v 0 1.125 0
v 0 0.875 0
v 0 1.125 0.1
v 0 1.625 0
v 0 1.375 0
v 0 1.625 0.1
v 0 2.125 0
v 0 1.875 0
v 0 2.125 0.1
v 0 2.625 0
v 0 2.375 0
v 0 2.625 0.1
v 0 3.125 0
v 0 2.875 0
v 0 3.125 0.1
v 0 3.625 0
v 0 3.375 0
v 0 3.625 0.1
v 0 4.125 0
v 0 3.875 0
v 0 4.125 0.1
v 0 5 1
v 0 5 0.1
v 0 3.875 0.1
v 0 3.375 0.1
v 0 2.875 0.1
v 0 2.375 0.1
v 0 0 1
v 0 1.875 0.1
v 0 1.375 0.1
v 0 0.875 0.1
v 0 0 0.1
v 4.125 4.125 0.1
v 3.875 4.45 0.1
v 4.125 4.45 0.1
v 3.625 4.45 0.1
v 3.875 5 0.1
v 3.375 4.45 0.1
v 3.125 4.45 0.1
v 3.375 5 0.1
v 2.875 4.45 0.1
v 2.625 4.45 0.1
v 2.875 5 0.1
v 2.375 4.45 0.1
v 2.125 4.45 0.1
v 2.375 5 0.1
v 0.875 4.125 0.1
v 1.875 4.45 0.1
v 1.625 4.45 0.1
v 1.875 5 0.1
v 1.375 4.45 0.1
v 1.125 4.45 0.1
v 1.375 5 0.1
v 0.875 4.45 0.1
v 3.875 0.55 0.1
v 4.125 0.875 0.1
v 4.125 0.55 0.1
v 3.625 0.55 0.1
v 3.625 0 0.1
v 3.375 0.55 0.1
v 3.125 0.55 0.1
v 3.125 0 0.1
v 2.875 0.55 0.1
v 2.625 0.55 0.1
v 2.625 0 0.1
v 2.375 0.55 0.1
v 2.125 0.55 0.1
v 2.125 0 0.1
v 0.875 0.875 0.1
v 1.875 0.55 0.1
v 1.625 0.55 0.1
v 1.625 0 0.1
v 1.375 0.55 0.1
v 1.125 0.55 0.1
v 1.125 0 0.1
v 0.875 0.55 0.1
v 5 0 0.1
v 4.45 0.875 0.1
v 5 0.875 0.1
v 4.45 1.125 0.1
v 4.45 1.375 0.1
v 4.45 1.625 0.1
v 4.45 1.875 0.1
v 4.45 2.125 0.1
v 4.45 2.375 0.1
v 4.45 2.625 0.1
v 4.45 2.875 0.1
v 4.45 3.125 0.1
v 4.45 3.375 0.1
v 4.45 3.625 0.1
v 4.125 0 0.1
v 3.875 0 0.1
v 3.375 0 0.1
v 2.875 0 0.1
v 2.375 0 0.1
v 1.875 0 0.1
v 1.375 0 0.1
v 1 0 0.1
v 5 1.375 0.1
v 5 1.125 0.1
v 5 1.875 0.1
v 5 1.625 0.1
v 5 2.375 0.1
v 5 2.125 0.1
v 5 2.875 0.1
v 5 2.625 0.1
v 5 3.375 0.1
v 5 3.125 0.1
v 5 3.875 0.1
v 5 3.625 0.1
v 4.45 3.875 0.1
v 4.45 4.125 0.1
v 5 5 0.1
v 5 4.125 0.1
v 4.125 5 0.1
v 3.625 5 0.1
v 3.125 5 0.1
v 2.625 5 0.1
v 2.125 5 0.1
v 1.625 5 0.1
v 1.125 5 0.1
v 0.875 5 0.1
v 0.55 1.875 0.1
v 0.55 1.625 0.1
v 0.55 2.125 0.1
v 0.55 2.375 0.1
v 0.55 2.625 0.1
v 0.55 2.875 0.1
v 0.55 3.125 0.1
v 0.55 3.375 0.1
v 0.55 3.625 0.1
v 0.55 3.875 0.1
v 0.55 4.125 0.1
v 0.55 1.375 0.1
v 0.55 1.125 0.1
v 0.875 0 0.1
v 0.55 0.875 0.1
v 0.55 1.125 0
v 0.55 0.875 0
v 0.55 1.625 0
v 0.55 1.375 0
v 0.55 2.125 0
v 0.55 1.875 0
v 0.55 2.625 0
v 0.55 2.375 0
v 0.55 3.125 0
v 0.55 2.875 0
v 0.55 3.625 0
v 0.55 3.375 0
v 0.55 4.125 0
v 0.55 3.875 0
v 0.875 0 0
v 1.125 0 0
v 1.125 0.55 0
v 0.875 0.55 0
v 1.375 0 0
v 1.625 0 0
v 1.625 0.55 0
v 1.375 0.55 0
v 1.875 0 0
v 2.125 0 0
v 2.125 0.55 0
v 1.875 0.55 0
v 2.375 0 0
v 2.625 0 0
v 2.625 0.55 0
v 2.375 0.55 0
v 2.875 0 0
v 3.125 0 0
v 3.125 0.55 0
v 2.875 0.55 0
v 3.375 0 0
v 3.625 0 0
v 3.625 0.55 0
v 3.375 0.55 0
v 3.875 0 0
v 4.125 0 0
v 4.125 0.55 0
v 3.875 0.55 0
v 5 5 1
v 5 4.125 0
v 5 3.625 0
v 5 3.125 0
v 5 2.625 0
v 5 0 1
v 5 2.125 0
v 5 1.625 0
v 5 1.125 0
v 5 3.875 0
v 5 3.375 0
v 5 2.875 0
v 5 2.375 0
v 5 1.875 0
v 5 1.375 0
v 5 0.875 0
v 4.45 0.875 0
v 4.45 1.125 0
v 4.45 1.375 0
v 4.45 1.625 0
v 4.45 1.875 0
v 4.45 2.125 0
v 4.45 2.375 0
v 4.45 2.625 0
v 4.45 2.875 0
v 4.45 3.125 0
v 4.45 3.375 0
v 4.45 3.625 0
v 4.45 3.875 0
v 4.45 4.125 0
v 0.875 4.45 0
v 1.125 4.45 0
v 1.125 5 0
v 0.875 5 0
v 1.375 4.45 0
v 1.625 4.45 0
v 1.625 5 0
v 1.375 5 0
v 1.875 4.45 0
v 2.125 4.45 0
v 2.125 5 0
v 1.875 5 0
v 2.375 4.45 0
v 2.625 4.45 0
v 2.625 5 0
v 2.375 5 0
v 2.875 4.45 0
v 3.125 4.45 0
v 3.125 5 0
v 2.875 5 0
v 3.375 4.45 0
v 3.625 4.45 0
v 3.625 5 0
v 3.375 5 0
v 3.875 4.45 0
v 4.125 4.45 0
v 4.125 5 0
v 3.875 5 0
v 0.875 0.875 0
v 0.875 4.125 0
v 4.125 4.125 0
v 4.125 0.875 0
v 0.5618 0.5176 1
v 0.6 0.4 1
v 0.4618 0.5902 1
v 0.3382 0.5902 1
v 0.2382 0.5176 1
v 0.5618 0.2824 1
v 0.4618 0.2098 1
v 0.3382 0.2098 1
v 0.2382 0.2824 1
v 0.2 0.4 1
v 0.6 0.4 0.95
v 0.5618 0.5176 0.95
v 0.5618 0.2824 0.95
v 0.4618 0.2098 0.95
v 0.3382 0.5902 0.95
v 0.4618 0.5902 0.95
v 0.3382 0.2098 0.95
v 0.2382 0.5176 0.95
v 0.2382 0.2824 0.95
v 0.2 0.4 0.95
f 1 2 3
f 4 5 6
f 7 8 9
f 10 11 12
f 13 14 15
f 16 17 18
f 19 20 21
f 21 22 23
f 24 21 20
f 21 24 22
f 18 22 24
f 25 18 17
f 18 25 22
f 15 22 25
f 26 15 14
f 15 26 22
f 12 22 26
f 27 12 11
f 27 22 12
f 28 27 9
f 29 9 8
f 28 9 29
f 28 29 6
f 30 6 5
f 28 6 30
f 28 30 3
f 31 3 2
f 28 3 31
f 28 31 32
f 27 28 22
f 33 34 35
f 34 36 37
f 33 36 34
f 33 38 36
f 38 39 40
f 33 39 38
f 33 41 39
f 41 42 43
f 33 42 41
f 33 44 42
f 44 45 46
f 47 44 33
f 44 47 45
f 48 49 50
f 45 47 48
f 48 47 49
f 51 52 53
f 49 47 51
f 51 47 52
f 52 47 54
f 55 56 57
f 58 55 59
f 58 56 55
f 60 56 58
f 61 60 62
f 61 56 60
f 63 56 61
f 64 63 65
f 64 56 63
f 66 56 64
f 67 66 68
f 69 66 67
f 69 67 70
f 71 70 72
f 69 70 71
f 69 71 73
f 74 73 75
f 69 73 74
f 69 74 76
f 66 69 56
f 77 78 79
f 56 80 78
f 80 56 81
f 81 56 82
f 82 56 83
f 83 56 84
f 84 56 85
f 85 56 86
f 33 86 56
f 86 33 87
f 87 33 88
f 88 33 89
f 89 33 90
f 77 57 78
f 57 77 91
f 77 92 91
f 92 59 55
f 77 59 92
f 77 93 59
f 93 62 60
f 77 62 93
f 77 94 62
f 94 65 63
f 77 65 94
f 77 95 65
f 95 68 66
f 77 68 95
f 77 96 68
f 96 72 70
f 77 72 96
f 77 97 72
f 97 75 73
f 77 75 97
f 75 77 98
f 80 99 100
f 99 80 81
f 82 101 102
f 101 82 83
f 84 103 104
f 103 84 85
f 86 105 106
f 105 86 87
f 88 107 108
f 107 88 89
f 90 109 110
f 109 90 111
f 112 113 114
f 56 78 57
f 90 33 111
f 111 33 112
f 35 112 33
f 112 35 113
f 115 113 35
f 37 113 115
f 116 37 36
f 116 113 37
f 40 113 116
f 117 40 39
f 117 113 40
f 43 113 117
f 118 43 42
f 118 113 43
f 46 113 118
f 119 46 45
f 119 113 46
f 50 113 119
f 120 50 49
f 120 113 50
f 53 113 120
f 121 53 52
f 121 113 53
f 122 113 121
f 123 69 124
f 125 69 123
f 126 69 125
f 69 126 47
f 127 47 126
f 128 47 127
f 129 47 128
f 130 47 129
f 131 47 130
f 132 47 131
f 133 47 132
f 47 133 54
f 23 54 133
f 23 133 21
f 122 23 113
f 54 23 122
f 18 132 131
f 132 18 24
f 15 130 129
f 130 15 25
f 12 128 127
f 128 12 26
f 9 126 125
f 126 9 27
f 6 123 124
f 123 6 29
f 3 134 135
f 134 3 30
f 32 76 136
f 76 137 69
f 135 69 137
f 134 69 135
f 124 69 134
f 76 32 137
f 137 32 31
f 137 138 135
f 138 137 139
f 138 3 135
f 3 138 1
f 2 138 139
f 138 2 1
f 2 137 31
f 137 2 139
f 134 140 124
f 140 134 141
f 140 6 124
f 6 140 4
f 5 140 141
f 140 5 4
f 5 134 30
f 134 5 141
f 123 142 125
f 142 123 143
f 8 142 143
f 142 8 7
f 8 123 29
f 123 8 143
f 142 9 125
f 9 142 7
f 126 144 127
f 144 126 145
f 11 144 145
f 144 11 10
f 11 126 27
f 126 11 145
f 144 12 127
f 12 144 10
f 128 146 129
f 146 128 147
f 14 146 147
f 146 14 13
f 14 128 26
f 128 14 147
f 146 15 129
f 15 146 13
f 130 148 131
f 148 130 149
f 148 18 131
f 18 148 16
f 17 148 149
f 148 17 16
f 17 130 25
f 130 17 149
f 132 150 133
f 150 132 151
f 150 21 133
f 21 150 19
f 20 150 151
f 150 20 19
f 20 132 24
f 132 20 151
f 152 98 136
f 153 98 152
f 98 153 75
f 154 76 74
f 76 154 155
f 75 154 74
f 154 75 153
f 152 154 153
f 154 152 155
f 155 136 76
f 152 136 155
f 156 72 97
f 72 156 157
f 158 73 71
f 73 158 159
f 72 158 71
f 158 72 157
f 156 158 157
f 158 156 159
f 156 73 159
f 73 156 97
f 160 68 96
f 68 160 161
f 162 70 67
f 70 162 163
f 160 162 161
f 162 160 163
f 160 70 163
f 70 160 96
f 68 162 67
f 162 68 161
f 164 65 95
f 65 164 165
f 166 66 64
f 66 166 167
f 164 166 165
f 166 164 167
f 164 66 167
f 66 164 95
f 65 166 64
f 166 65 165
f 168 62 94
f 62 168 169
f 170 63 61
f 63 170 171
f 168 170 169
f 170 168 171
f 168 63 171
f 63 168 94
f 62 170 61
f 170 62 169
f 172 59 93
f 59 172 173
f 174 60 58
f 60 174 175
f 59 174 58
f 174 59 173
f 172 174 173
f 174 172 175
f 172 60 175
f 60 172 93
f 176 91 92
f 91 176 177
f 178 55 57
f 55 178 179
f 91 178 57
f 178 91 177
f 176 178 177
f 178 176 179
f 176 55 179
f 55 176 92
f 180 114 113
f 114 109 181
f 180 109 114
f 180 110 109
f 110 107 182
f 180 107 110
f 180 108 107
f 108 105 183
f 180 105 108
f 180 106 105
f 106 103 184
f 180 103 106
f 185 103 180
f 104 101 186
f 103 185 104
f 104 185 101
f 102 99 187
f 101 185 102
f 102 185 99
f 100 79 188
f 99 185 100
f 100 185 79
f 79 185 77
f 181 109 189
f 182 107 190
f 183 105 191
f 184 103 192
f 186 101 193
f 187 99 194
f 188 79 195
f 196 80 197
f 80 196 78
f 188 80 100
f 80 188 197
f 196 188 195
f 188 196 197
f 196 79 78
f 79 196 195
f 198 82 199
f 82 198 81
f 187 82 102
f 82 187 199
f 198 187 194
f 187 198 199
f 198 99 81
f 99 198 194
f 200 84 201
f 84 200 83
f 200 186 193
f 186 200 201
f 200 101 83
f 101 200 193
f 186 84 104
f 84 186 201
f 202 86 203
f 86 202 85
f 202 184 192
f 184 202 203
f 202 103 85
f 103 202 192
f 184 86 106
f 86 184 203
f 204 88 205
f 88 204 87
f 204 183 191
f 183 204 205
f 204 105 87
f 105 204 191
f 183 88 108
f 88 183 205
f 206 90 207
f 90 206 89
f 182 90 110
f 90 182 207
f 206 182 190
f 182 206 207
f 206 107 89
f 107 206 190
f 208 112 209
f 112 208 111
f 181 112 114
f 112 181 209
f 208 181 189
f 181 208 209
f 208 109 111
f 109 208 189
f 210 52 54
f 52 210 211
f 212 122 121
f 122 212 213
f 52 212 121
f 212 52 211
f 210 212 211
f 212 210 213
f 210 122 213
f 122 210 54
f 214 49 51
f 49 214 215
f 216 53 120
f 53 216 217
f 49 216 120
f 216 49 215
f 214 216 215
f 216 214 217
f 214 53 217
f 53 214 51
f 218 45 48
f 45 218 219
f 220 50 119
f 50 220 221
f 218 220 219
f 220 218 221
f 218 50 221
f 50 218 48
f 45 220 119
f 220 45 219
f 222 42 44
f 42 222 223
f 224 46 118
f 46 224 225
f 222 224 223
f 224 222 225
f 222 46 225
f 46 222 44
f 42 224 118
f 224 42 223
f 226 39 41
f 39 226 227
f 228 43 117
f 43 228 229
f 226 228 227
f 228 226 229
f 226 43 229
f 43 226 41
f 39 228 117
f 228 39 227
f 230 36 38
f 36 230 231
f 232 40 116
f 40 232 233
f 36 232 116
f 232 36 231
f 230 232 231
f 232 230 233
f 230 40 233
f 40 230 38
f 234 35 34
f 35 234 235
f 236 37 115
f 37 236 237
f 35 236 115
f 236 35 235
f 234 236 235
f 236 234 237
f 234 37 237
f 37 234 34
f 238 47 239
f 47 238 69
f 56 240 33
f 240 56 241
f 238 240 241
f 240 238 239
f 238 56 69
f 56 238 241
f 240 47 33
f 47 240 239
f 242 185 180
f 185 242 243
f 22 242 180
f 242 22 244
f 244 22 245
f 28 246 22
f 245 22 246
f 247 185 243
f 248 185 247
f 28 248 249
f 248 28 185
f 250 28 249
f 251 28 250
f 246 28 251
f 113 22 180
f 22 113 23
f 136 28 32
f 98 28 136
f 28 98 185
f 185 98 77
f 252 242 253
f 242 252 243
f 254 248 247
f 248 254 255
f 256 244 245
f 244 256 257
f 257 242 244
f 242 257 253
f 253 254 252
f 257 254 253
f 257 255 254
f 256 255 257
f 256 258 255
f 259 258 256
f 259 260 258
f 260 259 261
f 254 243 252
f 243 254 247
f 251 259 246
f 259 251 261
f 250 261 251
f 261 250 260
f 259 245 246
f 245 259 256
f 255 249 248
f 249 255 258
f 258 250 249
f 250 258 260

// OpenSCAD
pin_w  = 0.25;
pin_th = 0.1;
pin_l  = 0.55;
pin_sp = 0.5;

pins_1 = 7;
pins_2 = 7;
pins_3 = 7;
pins_4 = 7;

case_w = 5.0;
case_h = 5.0;
case_th = 0.9;

module pin()
{
    translate([0,-pin_w/2,0])
        cube([pin_l,pin_w,pin_th], center=false);
}

module pins_array(_cnt, _distance)
{
	if (_cnt>0)
	{
		for (_i = [0:_cnt-1])
		{
			translate([0,_distance*_i,0])
				pin();
		}
	}
}
difference()
{
union()
{
    // Left pins
    translate([0,(case_h - (pins_1-1)*pin_sp)/2,0])
        pins_array(pins_1,pin_sp);

    // Bottom pins
    translate([(case_w - (pins_2-1)*pin_sp)/2,0,0])
        mirror([1,0,0])
            rotate([0,0,90])
                pins_array(pins_2,pin_sp);

    // Right pins
    translate([case_w,(case_h - (pins_3-1)*pin_sp)/2,0])
        mirror([1,0,0])
            pins_array(pins_3,pin_sp);

    // top pins
    translate([(case_w - (pins_4-1)*pin_sp)/2,case_h - pin_l,0])
        mirror([1,0,0])
            rotate([0,0,90])
                pins_array(pins_4,pin_sp);
    
    translate([(case_w-(pins_2-1)*pin_sp - pin_w)/2,(case_h-(pins_1-1)*pin_sp - pin_w)/2,0])
        cube([(pins_2-1)*pin_sp+pin_w,(pins_1-1)*pin_sp +pin_w,pin_th], center=false);

    // Case
    translate([0,0,pin_th])
    cube([case_w,case_h,case_th], center=false);

}
translate([0.4,0.4,case_th+pin_th/2])
cylinder(r=0.2,h=0.1,$fn=10);
}
